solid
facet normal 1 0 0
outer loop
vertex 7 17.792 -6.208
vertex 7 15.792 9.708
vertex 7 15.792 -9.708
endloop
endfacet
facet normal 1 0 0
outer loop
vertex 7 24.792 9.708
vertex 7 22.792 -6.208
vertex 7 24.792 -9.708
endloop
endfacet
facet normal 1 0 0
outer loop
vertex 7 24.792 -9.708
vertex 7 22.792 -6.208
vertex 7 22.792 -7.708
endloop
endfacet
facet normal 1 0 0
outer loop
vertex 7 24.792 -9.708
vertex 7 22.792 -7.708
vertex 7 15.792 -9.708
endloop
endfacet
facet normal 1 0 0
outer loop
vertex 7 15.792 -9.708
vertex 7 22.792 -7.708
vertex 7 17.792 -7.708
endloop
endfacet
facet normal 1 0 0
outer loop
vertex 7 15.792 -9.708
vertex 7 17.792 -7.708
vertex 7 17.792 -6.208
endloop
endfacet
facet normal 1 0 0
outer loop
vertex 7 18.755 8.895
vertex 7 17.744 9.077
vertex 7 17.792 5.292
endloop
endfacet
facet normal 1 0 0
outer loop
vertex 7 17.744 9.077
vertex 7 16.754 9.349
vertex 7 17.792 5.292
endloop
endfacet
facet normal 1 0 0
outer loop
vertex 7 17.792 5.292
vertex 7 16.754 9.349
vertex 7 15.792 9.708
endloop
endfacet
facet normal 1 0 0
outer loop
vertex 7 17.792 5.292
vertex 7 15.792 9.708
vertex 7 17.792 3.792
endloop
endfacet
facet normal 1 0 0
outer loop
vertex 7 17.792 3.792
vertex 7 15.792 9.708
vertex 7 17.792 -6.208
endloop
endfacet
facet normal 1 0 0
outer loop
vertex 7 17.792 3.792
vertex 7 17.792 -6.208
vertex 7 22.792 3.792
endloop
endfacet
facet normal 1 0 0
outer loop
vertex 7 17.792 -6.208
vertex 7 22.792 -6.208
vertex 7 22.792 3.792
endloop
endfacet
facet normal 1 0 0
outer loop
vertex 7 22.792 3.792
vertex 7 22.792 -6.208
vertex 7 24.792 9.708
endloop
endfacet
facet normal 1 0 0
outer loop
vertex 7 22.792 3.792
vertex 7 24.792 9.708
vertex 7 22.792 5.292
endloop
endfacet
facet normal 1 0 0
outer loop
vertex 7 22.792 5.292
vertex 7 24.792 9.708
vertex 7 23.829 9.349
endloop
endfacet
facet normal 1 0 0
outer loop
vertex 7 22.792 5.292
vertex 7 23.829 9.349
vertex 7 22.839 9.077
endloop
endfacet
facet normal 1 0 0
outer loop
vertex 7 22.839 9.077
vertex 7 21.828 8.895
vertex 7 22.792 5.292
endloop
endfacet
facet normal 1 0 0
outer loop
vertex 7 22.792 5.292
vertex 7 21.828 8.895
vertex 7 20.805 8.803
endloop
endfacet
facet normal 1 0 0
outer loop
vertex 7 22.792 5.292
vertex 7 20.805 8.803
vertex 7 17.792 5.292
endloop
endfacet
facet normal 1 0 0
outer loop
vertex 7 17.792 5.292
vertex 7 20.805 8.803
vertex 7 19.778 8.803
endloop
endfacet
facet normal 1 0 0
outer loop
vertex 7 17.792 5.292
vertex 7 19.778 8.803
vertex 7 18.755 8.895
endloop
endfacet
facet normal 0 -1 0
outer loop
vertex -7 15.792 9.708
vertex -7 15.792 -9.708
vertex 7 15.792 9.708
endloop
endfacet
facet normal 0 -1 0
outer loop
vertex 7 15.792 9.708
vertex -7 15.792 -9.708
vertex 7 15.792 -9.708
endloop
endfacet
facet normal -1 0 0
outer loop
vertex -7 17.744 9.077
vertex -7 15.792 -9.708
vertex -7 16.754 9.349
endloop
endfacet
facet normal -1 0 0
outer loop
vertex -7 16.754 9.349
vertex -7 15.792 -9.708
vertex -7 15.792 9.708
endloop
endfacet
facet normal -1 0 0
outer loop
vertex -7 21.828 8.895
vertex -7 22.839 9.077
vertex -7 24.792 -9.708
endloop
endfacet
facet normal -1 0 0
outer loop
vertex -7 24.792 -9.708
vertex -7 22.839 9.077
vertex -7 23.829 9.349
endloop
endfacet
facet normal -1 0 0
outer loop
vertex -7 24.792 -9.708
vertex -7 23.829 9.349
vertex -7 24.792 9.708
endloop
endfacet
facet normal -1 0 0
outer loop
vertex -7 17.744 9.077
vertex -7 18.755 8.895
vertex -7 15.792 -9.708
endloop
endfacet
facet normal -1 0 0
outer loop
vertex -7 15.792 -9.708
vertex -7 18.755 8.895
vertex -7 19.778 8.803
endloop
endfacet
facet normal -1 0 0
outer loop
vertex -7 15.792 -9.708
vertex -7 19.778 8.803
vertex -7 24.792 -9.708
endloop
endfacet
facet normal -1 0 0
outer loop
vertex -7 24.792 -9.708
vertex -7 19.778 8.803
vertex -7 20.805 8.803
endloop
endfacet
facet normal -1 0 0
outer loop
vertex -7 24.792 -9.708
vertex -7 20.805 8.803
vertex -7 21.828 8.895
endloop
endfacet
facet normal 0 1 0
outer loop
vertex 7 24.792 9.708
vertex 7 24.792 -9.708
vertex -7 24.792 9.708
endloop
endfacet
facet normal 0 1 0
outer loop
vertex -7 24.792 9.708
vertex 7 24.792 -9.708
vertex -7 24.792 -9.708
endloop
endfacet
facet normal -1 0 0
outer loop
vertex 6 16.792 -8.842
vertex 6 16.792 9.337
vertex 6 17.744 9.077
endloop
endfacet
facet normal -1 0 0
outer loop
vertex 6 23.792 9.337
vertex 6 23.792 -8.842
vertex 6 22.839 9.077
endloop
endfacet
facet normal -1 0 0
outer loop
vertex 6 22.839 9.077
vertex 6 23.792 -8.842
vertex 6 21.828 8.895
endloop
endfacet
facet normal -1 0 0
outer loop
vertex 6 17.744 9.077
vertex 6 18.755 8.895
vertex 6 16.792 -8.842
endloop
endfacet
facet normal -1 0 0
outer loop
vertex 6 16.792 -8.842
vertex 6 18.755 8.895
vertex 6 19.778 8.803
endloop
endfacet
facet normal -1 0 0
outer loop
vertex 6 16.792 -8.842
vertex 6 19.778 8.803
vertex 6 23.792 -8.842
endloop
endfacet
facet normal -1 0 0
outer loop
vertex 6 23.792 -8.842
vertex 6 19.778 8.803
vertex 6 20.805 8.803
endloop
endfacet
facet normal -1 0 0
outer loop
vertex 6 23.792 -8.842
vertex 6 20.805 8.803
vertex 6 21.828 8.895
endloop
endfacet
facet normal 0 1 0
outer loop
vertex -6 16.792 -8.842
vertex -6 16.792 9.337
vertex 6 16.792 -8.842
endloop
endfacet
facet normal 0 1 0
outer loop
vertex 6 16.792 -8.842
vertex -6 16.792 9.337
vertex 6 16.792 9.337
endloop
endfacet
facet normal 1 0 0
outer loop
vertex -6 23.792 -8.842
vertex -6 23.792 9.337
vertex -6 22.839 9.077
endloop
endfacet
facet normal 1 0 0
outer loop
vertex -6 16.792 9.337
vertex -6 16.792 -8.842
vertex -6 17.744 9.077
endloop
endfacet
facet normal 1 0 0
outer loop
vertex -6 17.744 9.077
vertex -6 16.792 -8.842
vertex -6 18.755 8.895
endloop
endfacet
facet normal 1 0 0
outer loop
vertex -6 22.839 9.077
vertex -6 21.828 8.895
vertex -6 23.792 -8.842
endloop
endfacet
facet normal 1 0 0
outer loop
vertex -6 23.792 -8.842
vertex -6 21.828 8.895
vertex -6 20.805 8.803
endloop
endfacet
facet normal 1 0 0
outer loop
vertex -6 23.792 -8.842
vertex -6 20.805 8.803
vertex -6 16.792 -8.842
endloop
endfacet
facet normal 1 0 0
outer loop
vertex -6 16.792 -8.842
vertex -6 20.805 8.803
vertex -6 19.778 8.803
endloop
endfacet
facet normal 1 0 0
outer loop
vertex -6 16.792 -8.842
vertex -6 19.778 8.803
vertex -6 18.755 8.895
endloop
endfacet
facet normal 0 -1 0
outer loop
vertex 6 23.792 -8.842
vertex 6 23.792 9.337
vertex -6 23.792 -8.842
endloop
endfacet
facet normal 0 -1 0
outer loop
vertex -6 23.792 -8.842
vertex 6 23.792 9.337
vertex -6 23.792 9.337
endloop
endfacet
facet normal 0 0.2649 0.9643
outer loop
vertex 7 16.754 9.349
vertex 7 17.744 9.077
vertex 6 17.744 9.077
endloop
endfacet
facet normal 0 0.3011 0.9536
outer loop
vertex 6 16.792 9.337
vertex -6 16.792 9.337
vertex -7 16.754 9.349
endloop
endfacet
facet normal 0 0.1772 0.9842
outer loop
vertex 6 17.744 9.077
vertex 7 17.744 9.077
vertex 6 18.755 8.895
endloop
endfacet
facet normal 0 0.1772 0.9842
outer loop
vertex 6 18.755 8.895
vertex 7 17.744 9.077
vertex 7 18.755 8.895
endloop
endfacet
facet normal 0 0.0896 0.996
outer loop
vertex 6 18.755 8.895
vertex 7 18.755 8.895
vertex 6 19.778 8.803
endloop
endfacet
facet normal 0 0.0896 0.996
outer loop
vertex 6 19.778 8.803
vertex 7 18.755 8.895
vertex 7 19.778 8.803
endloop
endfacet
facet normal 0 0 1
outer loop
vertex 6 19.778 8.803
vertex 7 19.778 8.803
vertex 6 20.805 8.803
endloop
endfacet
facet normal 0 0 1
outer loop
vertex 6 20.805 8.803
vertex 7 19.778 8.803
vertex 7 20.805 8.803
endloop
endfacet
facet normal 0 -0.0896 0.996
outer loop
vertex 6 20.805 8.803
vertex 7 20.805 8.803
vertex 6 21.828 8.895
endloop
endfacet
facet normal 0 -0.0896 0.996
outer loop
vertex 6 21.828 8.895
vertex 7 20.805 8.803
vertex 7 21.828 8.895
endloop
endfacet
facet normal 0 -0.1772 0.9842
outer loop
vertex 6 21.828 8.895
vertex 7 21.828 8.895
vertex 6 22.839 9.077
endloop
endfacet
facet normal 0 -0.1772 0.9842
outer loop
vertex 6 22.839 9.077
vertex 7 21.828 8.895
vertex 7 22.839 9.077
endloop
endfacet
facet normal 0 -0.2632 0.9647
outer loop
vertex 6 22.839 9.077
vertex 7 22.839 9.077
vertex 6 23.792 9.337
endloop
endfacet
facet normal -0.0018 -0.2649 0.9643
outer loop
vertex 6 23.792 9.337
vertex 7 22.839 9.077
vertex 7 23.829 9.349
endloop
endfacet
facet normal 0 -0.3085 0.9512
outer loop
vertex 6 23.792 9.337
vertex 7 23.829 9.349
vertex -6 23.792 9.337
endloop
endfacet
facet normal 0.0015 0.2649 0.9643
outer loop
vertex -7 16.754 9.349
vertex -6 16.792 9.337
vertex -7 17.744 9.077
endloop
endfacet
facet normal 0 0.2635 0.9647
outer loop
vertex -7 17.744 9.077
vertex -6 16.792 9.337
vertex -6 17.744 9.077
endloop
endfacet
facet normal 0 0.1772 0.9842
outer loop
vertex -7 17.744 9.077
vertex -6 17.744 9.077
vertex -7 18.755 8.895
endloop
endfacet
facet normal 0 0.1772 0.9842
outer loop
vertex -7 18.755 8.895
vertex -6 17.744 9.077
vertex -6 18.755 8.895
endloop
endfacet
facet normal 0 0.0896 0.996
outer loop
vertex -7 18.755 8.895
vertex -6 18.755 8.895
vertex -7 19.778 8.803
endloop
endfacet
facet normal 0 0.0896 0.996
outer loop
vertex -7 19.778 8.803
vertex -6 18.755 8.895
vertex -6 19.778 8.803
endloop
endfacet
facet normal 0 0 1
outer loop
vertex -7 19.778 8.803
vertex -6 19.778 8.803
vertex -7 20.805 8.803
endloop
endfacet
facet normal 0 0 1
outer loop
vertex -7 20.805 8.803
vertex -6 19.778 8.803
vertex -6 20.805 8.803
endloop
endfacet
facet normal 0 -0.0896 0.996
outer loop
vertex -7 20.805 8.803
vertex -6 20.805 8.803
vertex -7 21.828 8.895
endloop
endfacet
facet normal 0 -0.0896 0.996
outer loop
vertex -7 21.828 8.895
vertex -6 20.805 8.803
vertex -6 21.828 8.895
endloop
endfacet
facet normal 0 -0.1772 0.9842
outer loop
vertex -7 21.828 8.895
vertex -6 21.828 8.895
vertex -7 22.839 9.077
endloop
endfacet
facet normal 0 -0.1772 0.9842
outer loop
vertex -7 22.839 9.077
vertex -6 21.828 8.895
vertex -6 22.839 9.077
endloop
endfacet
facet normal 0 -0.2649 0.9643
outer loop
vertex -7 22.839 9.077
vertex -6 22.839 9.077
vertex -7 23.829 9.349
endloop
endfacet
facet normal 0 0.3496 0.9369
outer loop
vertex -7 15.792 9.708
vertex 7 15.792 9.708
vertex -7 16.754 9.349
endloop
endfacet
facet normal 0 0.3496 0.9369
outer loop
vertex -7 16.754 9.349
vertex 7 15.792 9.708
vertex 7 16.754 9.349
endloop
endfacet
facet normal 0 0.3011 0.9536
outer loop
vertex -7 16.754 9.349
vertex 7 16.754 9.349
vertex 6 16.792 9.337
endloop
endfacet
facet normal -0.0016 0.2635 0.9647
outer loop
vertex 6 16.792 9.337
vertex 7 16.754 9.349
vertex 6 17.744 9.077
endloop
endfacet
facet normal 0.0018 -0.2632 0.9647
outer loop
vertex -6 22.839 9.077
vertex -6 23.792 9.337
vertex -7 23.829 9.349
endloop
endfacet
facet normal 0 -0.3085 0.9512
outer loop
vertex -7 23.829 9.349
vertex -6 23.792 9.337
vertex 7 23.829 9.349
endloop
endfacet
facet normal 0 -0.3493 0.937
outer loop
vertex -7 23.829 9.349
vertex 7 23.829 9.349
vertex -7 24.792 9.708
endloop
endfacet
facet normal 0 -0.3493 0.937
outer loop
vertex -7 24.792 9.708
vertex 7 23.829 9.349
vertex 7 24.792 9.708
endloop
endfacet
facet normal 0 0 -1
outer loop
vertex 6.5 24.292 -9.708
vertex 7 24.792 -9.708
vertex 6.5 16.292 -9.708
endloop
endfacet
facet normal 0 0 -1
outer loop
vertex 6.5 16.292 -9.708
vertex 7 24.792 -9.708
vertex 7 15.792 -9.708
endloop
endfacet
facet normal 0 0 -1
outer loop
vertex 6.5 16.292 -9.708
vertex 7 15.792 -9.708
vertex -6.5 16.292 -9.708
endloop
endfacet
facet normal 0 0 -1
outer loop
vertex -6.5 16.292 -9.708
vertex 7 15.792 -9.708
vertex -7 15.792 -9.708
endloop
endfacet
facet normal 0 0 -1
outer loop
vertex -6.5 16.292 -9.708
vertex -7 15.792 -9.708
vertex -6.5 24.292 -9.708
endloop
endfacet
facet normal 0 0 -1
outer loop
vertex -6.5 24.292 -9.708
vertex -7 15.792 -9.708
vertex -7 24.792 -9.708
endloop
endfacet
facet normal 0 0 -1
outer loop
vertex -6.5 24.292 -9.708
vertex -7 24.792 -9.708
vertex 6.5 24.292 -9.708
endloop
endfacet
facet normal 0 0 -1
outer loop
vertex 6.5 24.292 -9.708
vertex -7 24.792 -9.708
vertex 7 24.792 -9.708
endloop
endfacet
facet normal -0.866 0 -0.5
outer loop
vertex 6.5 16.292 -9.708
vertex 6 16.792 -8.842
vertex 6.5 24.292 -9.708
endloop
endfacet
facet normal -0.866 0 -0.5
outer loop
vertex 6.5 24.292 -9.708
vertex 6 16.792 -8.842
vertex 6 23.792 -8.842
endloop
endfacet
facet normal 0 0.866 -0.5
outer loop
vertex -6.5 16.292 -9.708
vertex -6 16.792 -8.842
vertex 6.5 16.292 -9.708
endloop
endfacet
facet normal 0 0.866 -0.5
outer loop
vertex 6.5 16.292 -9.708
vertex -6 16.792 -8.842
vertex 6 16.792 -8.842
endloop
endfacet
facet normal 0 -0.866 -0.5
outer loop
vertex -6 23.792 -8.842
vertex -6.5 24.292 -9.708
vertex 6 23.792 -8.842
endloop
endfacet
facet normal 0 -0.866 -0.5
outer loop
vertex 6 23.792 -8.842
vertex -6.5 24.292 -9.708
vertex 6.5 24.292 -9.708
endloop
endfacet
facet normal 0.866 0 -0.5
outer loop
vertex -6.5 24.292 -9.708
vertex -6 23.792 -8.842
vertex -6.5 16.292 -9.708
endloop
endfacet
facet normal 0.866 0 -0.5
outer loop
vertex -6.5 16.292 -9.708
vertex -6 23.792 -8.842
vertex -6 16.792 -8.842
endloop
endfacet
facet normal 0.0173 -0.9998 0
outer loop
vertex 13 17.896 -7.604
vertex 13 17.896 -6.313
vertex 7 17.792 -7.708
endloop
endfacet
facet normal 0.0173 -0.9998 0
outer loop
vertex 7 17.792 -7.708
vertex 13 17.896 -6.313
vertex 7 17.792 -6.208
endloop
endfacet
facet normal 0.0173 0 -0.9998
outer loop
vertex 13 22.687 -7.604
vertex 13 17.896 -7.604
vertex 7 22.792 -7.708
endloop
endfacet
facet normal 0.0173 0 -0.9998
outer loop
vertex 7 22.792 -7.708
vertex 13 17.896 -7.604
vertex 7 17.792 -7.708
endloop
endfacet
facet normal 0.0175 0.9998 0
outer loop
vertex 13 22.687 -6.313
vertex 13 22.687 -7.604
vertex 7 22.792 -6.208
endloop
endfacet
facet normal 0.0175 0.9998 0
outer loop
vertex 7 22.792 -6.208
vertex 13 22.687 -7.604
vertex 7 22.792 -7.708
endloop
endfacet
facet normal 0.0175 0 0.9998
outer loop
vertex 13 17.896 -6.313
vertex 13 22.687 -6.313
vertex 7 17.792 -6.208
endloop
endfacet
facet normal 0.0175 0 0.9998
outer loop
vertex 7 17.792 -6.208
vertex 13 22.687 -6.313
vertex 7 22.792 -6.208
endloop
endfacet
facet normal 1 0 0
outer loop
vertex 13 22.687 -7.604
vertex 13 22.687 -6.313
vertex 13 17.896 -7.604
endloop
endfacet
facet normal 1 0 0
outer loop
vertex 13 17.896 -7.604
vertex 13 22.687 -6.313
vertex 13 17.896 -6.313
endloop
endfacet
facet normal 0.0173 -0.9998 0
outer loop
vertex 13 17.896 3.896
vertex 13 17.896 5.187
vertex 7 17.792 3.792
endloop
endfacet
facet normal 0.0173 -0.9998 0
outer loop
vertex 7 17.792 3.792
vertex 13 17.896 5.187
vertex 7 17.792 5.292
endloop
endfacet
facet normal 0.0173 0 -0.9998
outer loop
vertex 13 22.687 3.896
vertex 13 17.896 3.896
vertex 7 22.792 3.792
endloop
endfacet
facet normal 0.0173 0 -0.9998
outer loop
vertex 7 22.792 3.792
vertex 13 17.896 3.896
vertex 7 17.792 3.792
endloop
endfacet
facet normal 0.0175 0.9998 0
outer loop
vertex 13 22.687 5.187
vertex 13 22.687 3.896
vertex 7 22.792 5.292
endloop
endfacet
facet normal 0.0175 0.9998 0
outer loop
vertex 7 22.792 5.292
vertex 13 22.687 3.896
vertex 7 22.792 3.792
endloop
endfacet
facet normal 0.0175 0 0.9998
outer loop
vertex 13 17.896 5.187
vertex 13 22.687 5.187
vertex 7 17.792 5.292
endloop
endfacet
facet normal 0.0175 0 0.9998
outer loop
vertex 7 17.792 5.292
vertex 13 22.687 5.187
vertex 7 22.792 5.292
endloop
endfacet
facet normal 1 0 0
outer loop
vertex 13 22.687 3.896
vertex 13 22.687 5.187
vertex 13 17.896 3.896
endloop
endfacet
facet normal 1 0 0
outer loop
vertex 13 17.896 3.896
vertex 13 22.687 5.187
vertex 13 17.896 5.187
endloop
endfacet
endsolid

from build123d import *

# Parameters (mm, degrees)
SKETCH9_W                     = 12
SKETCH9_H                     = 7
BOSS_EXTRUDE5_DEPTH           = 25
SHELL6_T                      = 1
CUT_EXTRUDE2_REACH            = 31.004
SKETCH12_R                    = 11.5
SKETCH14_W                    = 14
SKETCH14_H                    = 9
SKETCH14_W_2                  = 12
SKETCH14_H_2                  = 7
BOSS_EXTRUDE6_DEPTH           = 5
CHAMFER2_SIZE                 = 0.5
CHAMFER2_SIZE2                = 0.866025404
SKETCH16_W                    = 5
SKETCH16_H                    = 1.5
BOSS_EXTRUDE7_DEPTH           = 6
BOSS_EXTRUDE7_DRAFT           = 1
BOSS_EXTRUDE7_PROFILE_2_DEPTH = 6
BOSS_EXTRUDE7_PROFILE_2_DRAFT = 1
BODY_MOVE_COPY1_ANGLE         = 90


with BuildPart() as part:
    # Sketch9 → Boss-Extrude5 (new body)
    with BuildSketch(Plane(origin=(0, 0, 0), x_dir=(1, 0, 0), z_dir=(0, 1, 0))):
        Rectangle(SKETCH9_W, SKETCH9_H)
    extrude(amount=BOSS_EXTRUDE5_DEPTH)

    # Shell6
    shell6_openings = [part.faces().sort_by_distance(p)[0] for p in [
        (0, 0, 0),
        (0, 25, 0),
    ]]
    offset(amount=SHELL6_T, openings=shell6_openings, kind=Kind.INTERSECTION)

    # Sketch12 → Cut-Extrude2 (cut, up to next)
    with BuildSketch(Plane(origin=(7, 0, 0), x_dir=(0, 0, -1), z_dir=(1, 0, 0)), mode=Mode.PRIVATE) as cut_extrude2_sk1:
        Circle(SKETCH12_R)
    cut_extrude2_tool1 = extrude(cut_extrude2_sk1.sketch, amount=-CUT_EXTRUDE2_REACH, mode=Mode.PRIVATE) & part.part
    add(cut_extrude2_tool1.solids().sort_by_distance((7, 0, 0))[0], mode=Mode.SUBTRACT)

    # Sketch14 → Boss-Extrude6 (add)
    with BuildSketch(Plane(origin=(0, 25, 0), x_dir=(1, 0, 0), z_dir=(0, 1, 0))):
        Rectangle(SKETCH14_W, SKETCH14_H)
        Rectangle(SKETCH14_W_2, SKETCH14_H_2, mode=Mode.SUBTRACT)
    extrude(amount=BOSS_EXTRUDE6_DEPTH)

    # Chamfer2
    chamfer2_edges = [part.edges().sort_by_distance(p)[0] for p in [
        (6, 30, 0),
        (0, 30, -3.5),
        (-6, 30, 0),
        (0, 30, 3.5),
    ]]
    chamfer2_side = [part.faces().sort_by_distance(p)[0] for p in [
        (0, 30, -4.33356683),
    ]]
    chamfer(chamfer2_edges, length=CHAMFER2_SIZE, length2=CHAMFER2_SIZE2, reference=chamfer2_side[0])


with BuildPart() as boss_extrude7_tool:
    # Sketch16 → Boss-Extrude7 (with draft: the straight prism first)
    with BuildSketch(Plane(origin=(7, 0, 0), x_dir=(0, 0, -1), z_dir=(1, 0, 0))):
        with Locations((0, 27.25)):
            Rectangle(SKETCH16_W, SKETCH16_H)
    extrude(amount=BOSS_EXTRUDE7_DEPTH)
    # Boss-Extrude7: the draft: its side faces are tilted about the plane it starts from
    boss_extrude7_sides = [boss_extrude7_tool.faces().sort_by_distance(p)[0] for p in [
        (10, 27.25, 2.5),
        (10, 26.5, 0),
        (10, 27.25, -2.5),
        (10, 28, 0),
    ]]
    draft(boss_extrude7_sides, Plane(origin=(7, 0, 0), x_dir=(0, 0, -1), z_dir=(1, 0, 0)), BOSS_EXTRUDE7_DRAFT)


with BuildPart() as part_1:
    add(part.part)

    # Boss-Extrude7: add boss_extrude7_tool
    add(boss_extrude7_tool.part)


with BuildPart() as boss_extrude7_profile_2_tool:
    # Sketch16 → Boss-Extrude7 profile 2 (with draft: the straight prism first)
    with BuildSketch(Plane(origin=(7, 0, 0), x_dir=(0, 0, -1), z_dir=(1, 0, 0))):
        with Locations((0, 15.75)):
            Rectangle(SKETCH16_W, SKETCH16_H)
    extrude(amount=BOSS_EXTRUDE7_PROFILE_2_DEPTH)
    # Boss-Extrude7 profile 2: the draft: its side faces are tilted about the plane it starts from
    boss_extrude7_profile_2_sides = [boss_extrude7_profile_2_tool.faces().sort_by_distance(p)[0] for p in [
        (10, 15.75, 2.5),
        (10, 15, 0),
        (10, 15.75, -2.5),
        (10, 16.5, 0),
    ]]
    draft(boss_extrude7_profile_2_sides, Plane(origin=(7, 0, 0), x_dir=(0, 0, -1), z_dir=(1, 0, 0)), BOSS_EXTRUDE7_PROFILE_2_DRAFT)


with BuildPart() as part_2:
    add(part_1.part)

    # Boss-Extrude7 profile 2: add boss_extrude7_profile_2_tool
    add(boss_extrude7_profile_2_tool.part)


with BuildPart() as part_3:
    # Body-Move/Copy1: moved
    add(part_2.part.rotate(Axis((0, 20.291502622, 0), (-1, 0, 0)), BODY_MOVE_COPY1_ANGLE))


solid = part_3.part
